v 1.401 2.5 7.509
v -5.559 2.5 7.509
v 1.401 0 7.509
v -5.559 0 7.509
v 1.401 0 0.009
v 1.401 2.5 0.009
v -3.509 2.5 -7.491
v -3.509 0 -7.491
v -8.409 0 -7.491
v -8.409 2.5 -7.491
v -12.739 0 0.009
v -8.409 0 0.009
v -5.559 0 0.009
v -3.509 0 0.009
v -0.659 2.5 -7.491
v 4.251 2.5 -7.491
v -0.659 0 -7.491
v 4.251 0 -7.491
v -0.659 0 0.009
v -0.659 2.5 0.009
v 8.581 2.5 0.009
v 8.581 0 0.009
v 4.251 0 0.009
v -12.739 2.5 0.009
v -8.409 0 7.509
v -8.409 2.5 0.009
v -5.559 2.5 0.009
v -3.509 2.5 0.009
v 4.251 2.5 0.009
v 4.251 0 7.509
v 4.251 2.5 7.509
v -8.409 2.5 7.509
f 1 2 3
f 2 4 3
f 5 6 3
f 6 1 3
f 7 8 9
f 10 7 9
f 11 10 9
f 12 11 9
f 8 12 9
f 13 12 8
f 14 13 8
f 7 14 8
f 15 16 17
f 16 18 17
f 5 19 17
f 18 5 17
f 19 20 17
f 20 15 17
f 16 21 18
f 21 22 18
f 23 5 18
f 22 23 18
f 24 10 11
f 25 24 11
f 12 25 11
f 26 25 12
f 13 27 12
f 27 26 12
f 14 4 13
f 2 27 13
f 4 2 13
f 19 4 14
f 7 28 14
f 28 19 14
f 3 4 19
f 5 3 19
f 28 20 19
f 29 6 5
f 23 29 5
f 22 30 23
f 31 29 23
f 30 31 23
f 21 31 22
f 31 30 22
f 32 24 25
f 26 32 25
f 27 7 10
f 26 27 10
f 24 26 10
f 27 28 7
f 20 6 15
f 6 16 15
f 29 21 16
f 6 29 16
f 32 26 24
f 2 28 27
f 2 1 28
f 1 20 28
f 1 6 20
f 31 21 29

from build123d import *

# Parameters (mm, degrees)
BOSS_EXTRUDE1_DEPTH = 2.5
SKETCH5_W           = 2.85
SKETCH5_H           = 2.5
CUT_EXTRUDE2_DEPTH  = 7.5
SKETCH6_W           = 2.85
SKETCH6_H           = 2.5
CUT_EXTRUDE3_DEPTH  = 7.5
SKETCH7_W           = 2.85
SKETCH7_H           = 2.5
CUT_EXTRUDE4_DEPTH  = 7.5


with BuildPart() as part:
    # Sketch1 → Boss-Extrude1 (new body)
    with BuildSketch(Plane(origin=(0, 0, 0), x_dir=(1, 0, 0), z_dir=(0, 1, 0))):
        Polygon((8.581310361, -0.009375041), (4.251183342, 7.490624959), (-8.409070695, 7.490624959), (-12.739197714, -0.009375041), (-8.409070695, -7.509375041), (4.251183342, -7.509375041), align=None)
    extrude(amount=BOSS_EXTRUDE1_DEPTH)

    # Sketch5 → Cut-Extrude2 (cut)
    with BuildSketch(Plane.XY.offset(7.509375041)):
        with Locations((-6.984070695, 1.25)):
            Rectangle(SKETCH5_W, SKETCH5_H)
    extrude(amount=-CUT_EXTRUDE2_DEPTH, mode=Mode.SUBTRACT)

    # Sketch6 → Cut-Extrude3 (cut)
    with BuildSketch(Plane.XY.offset(7.509375041)):
        with Locations((2.826183342, 1.25)):
            Rectangle(SKETCH6_W, SKETCH6_H)
    extrude(amount=-CUT_EXTRUDE3_DEPTH, mode=Mode.SUBTRACT)

    # Sketch7 → Cut-Extrude4 (cut)
    with BuildSketch(Plane(origin=(0, 0, -7.490624959), x_dir=(-1, 0, 0), z_dir=(0, 0, -1))):
        with Locations((2.083816658, 1.25)):
            Rectangle(SKETCH7_W, SKETCH7_H)
    extrude(amount=-CUT_EXTRUDE4_DEPTH, mode=Mode.SUBTRACT)


solid = part.part
